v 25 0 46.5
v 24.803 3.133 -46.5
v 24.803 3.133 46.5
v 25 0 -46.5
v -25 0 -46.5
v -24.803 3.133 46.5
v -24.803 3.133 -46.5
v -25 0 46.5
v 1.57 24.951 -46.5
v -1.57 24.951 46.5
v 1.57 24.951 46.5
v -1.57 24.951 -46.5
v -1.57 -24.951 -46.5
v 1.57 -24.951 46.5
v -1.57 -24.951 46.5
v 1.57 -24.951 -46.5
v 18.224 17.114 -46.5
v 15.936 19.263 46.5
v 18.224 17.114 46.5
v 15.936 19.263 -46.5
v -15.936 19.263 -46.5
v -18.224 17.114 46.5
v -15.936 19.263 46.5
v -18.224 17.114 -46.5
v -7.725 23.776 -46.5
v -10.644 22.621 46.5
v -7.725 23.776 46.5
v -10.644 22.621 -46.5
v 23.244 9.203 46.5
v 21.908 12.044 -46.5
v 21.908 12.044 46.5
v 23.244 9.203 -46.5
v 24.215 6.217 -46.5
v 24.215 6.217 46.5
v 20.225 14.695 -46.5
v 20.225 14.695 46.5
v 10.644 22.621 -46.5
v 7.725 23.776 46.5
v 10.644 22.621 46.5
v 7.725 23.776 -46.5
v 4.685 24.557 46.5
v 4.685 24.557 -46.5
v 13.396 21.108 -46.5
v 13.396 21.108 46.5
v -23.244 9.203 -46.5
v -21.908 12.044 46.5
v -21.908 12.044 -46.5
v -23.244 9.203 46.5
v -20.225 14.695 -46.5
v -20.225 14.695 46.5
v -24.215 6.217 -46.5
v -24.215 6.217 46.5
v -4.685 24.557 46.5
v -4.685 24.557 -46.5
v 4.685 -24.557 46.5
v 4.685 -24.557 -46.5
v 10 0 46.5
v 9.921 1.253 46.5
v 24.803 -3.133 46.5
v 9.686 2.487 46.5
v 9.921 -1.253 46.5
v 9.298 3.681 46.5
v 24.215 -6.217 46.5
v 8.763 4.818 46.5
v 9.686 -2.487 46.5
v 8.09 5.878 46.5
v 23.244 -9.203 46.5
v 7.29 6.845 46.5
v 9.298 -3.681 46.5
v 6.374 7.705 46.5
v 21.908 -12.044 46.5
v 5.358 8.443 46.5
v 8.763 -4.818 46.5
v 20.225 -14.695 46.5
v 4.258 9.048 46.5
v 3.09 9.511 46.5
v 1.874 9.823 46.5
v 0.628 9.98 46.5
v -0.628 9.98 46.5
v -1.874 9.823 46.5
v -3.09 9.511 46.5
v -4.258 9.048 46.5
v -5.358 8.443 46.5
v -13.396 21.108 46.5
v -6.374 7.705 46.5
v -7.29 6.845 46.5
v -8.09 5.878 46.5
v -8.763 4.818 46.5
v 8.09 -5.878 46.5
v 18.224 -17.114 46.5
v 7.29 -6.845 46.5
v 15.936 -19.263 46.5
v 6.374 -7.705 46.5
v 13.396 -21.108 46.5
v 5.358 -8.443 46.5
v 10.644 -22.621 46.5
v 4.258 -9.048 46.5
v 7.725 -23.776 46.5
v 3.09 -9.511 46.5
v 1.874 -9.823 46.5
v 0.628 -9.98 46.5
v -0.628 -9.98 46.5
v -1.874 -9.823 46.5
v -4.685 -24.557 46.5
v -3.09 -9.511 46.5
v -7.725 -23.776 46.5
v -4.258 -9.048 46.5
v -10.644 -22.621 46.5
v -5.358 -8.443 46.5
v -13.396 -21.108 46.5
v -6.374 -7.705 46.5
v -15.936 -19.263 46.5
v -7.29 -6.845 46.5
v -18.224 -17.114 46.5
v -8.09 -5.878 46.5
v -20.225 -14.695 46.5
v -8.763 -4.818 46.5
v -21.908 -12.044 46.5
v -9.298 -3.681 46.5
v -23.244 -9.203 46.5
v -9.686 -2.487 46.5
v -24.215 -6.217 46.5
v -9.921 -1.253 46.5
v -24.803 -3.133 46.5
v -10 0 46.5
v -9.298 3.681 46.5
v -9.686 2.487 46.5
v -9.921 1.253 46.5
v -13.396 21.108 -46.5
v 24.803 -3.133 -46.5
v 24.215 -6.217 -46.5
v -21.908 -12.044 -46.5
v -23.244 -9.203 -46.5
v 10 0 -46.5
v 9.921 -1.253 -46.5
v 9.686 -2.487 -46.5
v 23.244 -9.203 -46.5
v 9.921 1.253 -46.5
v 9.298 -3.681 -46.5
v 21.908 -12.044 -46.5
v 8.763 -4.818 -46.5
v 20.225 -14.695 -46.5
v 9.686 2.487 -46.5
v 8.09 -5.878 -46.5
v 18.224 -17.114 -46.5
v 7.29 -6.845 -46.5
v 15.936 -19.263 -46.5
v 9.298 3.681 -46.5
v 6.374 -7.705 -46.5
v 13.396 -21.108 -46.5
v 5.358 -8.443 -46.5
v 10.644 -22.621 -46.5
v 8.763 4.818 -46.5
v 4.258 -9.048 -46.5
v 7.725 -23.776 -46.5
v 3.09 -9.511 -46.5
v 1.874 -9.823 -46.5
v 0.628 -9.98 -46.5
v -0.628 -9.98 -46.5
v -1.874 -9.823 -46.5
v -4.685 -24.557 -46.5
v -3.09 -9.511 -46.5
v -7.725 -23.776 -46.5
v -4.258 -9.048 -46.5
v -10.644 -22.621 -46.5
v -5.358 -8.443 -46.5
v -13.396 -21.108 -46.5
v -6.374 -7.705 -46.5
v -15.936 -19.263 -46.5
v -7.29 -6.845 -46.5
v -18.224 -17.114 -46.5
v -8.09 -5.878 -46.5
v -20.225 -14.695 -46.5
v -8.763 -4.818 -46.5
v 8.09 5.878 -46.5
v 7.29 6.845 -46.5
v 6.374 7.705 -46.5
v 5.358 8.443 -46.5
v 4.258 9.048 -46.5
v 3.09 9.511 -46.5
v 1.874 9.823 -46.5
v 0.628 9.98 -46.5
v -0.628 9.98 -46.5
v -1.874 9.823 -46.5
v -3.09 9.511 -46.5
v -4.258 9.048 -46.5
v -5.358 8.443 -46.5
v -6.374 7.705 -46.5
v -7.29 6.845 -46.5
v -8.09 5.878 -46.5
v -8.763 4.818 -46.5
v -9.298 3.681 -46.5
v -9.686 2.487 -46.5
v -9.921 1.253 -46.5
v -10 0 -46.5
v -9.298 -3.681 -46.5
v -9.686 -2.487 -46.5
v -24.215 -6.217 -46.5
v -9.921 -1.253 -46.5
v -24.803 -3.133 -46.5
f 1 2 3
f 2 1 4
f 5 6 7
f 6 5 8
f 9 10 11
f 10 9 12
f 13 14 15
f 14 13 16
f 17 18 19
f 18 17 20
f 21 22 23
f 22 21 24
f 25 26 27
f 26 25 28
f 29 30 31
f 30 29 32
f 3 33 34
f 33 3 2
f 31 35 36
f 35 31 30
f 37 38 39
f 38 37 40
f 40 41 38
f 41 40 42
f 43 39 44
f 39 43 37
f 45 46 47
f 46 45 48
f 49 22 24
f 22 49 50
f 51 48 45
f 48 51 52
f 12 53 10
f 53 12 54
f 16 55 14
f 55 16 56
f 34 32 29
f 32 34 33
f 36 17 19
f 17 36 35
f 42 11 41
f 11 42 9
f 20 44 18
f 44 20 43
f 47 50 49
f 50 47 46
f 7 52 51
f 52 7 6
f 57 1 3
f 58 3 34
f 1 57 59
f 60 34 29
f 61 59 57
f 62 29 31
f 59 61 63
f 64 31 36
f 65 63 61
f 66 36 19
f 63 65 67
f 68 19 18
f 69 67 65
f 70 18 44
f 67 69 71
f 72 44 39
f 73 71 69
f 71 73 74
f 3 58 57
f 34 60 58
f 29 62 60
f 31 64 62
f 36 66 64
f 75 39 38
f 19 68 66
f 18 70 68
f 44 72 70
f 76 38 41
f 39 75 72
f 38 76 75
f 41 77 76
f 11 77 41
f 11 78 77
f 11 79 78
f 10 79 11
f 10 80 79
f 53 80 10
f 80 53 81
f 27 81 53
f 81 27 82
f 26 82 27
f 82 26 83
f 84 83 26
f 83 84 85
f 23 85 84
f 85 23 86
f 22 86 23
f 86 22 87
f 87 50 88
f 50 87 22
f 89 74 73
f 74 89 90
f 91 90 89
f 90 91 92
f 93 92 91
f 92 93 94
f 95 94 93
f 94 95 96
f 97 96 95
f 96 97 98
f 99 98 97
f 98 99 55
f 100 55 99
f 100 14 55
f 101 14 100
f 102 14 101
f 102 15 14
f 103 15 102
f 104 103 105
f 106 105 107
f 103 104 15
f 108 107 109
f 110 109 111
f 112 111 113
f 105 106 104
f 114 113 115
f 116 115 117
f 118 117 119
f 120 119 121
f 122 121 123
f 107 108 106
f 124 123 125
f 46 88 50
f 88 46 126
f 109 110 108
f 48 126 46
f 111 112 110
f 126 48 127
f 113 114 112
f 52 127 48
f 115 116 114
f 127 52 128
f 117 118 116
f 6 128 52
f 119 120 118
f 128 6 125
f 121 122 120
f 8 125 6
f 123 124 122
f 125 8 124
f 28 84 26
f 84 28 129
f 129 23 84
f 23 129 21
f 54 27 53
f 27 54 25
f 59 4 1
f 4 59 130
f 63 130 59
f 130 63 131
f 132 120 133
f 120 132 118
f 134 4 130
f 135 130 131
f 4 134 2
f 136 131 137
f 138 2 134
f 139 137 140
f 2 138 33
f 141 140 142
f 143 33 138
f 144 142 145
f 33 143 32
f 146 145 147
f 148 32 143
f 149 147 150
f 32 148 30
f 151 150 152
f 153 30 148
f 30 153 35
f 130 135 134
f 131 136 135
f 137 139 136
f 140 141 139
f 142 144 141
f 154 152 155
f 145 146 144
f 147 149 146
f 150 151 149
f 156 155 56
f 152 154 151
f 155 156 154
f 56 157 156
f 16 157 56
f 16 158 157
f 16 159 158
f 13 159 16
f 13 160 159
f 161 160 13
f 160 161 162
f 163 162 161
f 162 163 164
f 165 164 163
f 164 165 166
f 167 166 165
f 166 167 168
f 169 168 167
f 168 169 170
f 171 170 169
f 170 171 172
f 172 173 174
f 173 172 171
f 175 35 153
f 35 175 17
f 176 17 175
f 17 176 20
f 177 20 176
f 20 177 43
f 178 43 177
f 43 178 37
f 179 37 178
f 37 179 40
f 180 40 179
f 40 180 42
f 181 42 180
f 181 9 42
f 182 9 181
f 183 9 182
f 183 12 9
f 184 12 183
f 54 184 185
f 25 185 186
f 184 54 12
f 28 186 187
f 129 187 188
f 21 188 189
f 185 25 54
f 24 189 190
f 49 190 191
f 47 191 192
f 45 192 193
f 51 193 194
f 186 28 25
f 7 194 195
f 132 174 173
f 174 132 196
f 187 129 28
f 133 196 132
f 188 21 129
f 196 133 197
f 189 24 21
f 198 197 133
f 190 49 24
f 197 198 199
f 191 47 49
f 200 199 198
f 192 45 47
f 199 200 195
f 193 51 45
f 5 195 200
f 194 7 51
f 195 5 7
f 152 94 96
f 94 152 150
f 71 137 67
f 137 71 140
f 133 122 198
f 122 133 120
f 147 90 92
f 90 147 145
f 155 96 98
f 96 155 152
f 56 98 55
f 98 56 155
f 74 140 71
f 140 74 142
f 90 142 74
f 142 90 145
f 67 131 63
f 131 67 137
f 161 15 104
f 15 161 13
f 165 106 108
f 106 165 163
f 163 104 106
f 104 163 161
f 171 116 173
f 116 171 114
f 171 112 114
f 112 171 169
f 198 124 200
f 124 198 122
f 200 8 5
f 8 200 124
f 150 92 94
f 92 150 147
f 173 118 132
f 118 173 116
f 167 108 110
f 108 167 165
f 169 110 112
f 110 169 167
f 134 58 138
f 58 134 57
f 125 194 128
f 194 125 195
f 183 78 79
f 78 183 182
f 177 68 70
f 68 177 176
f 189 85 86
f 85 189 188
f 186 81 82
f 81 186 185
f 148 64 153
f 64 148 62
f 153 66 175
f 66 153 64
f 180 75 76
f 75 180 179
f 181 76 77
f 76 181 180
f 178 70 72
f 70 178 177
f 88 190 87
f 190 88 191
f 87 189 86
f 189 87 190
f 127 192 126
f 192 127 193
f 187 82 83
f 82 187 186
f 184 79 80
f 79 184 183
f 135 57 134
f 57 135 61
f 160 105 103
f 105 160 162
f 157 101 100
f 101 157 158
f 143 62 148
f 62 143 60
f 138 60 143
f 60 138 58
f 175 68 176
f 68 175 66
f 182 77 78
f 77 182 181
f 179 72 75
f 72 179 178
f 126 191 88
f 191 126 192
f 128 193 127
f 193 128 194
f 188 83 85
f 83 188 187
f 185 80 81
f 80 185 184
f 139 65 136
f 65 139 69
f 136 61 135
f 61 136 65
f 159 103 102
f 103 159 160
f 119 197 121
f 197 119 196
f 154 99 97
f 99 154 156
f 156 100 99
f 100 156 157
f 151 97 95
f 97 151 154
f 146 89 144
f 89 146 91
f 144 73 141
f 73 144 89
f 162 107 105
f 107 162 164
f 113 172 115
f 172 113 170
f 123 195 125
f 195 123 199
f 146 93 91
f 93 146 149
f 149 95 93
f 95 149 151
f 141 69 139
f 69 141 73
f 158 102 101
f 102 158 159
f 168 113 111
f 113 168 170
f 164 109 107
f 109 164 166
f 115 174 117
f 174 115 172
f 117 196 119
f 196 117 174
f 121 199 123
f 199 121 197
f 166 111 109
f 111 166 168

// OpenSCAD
$fn = 50;


difference() {
	union() {
		translate(v = [0, 0, -46.5000000000]) {
			cylinder(h = 93, r = 25.0000000000);
		}
	}
	union() {
		translate(v = [0, 0, -100.0000000000]) {
			cylinder(h = 200, r = 10);
		}
	}
}
